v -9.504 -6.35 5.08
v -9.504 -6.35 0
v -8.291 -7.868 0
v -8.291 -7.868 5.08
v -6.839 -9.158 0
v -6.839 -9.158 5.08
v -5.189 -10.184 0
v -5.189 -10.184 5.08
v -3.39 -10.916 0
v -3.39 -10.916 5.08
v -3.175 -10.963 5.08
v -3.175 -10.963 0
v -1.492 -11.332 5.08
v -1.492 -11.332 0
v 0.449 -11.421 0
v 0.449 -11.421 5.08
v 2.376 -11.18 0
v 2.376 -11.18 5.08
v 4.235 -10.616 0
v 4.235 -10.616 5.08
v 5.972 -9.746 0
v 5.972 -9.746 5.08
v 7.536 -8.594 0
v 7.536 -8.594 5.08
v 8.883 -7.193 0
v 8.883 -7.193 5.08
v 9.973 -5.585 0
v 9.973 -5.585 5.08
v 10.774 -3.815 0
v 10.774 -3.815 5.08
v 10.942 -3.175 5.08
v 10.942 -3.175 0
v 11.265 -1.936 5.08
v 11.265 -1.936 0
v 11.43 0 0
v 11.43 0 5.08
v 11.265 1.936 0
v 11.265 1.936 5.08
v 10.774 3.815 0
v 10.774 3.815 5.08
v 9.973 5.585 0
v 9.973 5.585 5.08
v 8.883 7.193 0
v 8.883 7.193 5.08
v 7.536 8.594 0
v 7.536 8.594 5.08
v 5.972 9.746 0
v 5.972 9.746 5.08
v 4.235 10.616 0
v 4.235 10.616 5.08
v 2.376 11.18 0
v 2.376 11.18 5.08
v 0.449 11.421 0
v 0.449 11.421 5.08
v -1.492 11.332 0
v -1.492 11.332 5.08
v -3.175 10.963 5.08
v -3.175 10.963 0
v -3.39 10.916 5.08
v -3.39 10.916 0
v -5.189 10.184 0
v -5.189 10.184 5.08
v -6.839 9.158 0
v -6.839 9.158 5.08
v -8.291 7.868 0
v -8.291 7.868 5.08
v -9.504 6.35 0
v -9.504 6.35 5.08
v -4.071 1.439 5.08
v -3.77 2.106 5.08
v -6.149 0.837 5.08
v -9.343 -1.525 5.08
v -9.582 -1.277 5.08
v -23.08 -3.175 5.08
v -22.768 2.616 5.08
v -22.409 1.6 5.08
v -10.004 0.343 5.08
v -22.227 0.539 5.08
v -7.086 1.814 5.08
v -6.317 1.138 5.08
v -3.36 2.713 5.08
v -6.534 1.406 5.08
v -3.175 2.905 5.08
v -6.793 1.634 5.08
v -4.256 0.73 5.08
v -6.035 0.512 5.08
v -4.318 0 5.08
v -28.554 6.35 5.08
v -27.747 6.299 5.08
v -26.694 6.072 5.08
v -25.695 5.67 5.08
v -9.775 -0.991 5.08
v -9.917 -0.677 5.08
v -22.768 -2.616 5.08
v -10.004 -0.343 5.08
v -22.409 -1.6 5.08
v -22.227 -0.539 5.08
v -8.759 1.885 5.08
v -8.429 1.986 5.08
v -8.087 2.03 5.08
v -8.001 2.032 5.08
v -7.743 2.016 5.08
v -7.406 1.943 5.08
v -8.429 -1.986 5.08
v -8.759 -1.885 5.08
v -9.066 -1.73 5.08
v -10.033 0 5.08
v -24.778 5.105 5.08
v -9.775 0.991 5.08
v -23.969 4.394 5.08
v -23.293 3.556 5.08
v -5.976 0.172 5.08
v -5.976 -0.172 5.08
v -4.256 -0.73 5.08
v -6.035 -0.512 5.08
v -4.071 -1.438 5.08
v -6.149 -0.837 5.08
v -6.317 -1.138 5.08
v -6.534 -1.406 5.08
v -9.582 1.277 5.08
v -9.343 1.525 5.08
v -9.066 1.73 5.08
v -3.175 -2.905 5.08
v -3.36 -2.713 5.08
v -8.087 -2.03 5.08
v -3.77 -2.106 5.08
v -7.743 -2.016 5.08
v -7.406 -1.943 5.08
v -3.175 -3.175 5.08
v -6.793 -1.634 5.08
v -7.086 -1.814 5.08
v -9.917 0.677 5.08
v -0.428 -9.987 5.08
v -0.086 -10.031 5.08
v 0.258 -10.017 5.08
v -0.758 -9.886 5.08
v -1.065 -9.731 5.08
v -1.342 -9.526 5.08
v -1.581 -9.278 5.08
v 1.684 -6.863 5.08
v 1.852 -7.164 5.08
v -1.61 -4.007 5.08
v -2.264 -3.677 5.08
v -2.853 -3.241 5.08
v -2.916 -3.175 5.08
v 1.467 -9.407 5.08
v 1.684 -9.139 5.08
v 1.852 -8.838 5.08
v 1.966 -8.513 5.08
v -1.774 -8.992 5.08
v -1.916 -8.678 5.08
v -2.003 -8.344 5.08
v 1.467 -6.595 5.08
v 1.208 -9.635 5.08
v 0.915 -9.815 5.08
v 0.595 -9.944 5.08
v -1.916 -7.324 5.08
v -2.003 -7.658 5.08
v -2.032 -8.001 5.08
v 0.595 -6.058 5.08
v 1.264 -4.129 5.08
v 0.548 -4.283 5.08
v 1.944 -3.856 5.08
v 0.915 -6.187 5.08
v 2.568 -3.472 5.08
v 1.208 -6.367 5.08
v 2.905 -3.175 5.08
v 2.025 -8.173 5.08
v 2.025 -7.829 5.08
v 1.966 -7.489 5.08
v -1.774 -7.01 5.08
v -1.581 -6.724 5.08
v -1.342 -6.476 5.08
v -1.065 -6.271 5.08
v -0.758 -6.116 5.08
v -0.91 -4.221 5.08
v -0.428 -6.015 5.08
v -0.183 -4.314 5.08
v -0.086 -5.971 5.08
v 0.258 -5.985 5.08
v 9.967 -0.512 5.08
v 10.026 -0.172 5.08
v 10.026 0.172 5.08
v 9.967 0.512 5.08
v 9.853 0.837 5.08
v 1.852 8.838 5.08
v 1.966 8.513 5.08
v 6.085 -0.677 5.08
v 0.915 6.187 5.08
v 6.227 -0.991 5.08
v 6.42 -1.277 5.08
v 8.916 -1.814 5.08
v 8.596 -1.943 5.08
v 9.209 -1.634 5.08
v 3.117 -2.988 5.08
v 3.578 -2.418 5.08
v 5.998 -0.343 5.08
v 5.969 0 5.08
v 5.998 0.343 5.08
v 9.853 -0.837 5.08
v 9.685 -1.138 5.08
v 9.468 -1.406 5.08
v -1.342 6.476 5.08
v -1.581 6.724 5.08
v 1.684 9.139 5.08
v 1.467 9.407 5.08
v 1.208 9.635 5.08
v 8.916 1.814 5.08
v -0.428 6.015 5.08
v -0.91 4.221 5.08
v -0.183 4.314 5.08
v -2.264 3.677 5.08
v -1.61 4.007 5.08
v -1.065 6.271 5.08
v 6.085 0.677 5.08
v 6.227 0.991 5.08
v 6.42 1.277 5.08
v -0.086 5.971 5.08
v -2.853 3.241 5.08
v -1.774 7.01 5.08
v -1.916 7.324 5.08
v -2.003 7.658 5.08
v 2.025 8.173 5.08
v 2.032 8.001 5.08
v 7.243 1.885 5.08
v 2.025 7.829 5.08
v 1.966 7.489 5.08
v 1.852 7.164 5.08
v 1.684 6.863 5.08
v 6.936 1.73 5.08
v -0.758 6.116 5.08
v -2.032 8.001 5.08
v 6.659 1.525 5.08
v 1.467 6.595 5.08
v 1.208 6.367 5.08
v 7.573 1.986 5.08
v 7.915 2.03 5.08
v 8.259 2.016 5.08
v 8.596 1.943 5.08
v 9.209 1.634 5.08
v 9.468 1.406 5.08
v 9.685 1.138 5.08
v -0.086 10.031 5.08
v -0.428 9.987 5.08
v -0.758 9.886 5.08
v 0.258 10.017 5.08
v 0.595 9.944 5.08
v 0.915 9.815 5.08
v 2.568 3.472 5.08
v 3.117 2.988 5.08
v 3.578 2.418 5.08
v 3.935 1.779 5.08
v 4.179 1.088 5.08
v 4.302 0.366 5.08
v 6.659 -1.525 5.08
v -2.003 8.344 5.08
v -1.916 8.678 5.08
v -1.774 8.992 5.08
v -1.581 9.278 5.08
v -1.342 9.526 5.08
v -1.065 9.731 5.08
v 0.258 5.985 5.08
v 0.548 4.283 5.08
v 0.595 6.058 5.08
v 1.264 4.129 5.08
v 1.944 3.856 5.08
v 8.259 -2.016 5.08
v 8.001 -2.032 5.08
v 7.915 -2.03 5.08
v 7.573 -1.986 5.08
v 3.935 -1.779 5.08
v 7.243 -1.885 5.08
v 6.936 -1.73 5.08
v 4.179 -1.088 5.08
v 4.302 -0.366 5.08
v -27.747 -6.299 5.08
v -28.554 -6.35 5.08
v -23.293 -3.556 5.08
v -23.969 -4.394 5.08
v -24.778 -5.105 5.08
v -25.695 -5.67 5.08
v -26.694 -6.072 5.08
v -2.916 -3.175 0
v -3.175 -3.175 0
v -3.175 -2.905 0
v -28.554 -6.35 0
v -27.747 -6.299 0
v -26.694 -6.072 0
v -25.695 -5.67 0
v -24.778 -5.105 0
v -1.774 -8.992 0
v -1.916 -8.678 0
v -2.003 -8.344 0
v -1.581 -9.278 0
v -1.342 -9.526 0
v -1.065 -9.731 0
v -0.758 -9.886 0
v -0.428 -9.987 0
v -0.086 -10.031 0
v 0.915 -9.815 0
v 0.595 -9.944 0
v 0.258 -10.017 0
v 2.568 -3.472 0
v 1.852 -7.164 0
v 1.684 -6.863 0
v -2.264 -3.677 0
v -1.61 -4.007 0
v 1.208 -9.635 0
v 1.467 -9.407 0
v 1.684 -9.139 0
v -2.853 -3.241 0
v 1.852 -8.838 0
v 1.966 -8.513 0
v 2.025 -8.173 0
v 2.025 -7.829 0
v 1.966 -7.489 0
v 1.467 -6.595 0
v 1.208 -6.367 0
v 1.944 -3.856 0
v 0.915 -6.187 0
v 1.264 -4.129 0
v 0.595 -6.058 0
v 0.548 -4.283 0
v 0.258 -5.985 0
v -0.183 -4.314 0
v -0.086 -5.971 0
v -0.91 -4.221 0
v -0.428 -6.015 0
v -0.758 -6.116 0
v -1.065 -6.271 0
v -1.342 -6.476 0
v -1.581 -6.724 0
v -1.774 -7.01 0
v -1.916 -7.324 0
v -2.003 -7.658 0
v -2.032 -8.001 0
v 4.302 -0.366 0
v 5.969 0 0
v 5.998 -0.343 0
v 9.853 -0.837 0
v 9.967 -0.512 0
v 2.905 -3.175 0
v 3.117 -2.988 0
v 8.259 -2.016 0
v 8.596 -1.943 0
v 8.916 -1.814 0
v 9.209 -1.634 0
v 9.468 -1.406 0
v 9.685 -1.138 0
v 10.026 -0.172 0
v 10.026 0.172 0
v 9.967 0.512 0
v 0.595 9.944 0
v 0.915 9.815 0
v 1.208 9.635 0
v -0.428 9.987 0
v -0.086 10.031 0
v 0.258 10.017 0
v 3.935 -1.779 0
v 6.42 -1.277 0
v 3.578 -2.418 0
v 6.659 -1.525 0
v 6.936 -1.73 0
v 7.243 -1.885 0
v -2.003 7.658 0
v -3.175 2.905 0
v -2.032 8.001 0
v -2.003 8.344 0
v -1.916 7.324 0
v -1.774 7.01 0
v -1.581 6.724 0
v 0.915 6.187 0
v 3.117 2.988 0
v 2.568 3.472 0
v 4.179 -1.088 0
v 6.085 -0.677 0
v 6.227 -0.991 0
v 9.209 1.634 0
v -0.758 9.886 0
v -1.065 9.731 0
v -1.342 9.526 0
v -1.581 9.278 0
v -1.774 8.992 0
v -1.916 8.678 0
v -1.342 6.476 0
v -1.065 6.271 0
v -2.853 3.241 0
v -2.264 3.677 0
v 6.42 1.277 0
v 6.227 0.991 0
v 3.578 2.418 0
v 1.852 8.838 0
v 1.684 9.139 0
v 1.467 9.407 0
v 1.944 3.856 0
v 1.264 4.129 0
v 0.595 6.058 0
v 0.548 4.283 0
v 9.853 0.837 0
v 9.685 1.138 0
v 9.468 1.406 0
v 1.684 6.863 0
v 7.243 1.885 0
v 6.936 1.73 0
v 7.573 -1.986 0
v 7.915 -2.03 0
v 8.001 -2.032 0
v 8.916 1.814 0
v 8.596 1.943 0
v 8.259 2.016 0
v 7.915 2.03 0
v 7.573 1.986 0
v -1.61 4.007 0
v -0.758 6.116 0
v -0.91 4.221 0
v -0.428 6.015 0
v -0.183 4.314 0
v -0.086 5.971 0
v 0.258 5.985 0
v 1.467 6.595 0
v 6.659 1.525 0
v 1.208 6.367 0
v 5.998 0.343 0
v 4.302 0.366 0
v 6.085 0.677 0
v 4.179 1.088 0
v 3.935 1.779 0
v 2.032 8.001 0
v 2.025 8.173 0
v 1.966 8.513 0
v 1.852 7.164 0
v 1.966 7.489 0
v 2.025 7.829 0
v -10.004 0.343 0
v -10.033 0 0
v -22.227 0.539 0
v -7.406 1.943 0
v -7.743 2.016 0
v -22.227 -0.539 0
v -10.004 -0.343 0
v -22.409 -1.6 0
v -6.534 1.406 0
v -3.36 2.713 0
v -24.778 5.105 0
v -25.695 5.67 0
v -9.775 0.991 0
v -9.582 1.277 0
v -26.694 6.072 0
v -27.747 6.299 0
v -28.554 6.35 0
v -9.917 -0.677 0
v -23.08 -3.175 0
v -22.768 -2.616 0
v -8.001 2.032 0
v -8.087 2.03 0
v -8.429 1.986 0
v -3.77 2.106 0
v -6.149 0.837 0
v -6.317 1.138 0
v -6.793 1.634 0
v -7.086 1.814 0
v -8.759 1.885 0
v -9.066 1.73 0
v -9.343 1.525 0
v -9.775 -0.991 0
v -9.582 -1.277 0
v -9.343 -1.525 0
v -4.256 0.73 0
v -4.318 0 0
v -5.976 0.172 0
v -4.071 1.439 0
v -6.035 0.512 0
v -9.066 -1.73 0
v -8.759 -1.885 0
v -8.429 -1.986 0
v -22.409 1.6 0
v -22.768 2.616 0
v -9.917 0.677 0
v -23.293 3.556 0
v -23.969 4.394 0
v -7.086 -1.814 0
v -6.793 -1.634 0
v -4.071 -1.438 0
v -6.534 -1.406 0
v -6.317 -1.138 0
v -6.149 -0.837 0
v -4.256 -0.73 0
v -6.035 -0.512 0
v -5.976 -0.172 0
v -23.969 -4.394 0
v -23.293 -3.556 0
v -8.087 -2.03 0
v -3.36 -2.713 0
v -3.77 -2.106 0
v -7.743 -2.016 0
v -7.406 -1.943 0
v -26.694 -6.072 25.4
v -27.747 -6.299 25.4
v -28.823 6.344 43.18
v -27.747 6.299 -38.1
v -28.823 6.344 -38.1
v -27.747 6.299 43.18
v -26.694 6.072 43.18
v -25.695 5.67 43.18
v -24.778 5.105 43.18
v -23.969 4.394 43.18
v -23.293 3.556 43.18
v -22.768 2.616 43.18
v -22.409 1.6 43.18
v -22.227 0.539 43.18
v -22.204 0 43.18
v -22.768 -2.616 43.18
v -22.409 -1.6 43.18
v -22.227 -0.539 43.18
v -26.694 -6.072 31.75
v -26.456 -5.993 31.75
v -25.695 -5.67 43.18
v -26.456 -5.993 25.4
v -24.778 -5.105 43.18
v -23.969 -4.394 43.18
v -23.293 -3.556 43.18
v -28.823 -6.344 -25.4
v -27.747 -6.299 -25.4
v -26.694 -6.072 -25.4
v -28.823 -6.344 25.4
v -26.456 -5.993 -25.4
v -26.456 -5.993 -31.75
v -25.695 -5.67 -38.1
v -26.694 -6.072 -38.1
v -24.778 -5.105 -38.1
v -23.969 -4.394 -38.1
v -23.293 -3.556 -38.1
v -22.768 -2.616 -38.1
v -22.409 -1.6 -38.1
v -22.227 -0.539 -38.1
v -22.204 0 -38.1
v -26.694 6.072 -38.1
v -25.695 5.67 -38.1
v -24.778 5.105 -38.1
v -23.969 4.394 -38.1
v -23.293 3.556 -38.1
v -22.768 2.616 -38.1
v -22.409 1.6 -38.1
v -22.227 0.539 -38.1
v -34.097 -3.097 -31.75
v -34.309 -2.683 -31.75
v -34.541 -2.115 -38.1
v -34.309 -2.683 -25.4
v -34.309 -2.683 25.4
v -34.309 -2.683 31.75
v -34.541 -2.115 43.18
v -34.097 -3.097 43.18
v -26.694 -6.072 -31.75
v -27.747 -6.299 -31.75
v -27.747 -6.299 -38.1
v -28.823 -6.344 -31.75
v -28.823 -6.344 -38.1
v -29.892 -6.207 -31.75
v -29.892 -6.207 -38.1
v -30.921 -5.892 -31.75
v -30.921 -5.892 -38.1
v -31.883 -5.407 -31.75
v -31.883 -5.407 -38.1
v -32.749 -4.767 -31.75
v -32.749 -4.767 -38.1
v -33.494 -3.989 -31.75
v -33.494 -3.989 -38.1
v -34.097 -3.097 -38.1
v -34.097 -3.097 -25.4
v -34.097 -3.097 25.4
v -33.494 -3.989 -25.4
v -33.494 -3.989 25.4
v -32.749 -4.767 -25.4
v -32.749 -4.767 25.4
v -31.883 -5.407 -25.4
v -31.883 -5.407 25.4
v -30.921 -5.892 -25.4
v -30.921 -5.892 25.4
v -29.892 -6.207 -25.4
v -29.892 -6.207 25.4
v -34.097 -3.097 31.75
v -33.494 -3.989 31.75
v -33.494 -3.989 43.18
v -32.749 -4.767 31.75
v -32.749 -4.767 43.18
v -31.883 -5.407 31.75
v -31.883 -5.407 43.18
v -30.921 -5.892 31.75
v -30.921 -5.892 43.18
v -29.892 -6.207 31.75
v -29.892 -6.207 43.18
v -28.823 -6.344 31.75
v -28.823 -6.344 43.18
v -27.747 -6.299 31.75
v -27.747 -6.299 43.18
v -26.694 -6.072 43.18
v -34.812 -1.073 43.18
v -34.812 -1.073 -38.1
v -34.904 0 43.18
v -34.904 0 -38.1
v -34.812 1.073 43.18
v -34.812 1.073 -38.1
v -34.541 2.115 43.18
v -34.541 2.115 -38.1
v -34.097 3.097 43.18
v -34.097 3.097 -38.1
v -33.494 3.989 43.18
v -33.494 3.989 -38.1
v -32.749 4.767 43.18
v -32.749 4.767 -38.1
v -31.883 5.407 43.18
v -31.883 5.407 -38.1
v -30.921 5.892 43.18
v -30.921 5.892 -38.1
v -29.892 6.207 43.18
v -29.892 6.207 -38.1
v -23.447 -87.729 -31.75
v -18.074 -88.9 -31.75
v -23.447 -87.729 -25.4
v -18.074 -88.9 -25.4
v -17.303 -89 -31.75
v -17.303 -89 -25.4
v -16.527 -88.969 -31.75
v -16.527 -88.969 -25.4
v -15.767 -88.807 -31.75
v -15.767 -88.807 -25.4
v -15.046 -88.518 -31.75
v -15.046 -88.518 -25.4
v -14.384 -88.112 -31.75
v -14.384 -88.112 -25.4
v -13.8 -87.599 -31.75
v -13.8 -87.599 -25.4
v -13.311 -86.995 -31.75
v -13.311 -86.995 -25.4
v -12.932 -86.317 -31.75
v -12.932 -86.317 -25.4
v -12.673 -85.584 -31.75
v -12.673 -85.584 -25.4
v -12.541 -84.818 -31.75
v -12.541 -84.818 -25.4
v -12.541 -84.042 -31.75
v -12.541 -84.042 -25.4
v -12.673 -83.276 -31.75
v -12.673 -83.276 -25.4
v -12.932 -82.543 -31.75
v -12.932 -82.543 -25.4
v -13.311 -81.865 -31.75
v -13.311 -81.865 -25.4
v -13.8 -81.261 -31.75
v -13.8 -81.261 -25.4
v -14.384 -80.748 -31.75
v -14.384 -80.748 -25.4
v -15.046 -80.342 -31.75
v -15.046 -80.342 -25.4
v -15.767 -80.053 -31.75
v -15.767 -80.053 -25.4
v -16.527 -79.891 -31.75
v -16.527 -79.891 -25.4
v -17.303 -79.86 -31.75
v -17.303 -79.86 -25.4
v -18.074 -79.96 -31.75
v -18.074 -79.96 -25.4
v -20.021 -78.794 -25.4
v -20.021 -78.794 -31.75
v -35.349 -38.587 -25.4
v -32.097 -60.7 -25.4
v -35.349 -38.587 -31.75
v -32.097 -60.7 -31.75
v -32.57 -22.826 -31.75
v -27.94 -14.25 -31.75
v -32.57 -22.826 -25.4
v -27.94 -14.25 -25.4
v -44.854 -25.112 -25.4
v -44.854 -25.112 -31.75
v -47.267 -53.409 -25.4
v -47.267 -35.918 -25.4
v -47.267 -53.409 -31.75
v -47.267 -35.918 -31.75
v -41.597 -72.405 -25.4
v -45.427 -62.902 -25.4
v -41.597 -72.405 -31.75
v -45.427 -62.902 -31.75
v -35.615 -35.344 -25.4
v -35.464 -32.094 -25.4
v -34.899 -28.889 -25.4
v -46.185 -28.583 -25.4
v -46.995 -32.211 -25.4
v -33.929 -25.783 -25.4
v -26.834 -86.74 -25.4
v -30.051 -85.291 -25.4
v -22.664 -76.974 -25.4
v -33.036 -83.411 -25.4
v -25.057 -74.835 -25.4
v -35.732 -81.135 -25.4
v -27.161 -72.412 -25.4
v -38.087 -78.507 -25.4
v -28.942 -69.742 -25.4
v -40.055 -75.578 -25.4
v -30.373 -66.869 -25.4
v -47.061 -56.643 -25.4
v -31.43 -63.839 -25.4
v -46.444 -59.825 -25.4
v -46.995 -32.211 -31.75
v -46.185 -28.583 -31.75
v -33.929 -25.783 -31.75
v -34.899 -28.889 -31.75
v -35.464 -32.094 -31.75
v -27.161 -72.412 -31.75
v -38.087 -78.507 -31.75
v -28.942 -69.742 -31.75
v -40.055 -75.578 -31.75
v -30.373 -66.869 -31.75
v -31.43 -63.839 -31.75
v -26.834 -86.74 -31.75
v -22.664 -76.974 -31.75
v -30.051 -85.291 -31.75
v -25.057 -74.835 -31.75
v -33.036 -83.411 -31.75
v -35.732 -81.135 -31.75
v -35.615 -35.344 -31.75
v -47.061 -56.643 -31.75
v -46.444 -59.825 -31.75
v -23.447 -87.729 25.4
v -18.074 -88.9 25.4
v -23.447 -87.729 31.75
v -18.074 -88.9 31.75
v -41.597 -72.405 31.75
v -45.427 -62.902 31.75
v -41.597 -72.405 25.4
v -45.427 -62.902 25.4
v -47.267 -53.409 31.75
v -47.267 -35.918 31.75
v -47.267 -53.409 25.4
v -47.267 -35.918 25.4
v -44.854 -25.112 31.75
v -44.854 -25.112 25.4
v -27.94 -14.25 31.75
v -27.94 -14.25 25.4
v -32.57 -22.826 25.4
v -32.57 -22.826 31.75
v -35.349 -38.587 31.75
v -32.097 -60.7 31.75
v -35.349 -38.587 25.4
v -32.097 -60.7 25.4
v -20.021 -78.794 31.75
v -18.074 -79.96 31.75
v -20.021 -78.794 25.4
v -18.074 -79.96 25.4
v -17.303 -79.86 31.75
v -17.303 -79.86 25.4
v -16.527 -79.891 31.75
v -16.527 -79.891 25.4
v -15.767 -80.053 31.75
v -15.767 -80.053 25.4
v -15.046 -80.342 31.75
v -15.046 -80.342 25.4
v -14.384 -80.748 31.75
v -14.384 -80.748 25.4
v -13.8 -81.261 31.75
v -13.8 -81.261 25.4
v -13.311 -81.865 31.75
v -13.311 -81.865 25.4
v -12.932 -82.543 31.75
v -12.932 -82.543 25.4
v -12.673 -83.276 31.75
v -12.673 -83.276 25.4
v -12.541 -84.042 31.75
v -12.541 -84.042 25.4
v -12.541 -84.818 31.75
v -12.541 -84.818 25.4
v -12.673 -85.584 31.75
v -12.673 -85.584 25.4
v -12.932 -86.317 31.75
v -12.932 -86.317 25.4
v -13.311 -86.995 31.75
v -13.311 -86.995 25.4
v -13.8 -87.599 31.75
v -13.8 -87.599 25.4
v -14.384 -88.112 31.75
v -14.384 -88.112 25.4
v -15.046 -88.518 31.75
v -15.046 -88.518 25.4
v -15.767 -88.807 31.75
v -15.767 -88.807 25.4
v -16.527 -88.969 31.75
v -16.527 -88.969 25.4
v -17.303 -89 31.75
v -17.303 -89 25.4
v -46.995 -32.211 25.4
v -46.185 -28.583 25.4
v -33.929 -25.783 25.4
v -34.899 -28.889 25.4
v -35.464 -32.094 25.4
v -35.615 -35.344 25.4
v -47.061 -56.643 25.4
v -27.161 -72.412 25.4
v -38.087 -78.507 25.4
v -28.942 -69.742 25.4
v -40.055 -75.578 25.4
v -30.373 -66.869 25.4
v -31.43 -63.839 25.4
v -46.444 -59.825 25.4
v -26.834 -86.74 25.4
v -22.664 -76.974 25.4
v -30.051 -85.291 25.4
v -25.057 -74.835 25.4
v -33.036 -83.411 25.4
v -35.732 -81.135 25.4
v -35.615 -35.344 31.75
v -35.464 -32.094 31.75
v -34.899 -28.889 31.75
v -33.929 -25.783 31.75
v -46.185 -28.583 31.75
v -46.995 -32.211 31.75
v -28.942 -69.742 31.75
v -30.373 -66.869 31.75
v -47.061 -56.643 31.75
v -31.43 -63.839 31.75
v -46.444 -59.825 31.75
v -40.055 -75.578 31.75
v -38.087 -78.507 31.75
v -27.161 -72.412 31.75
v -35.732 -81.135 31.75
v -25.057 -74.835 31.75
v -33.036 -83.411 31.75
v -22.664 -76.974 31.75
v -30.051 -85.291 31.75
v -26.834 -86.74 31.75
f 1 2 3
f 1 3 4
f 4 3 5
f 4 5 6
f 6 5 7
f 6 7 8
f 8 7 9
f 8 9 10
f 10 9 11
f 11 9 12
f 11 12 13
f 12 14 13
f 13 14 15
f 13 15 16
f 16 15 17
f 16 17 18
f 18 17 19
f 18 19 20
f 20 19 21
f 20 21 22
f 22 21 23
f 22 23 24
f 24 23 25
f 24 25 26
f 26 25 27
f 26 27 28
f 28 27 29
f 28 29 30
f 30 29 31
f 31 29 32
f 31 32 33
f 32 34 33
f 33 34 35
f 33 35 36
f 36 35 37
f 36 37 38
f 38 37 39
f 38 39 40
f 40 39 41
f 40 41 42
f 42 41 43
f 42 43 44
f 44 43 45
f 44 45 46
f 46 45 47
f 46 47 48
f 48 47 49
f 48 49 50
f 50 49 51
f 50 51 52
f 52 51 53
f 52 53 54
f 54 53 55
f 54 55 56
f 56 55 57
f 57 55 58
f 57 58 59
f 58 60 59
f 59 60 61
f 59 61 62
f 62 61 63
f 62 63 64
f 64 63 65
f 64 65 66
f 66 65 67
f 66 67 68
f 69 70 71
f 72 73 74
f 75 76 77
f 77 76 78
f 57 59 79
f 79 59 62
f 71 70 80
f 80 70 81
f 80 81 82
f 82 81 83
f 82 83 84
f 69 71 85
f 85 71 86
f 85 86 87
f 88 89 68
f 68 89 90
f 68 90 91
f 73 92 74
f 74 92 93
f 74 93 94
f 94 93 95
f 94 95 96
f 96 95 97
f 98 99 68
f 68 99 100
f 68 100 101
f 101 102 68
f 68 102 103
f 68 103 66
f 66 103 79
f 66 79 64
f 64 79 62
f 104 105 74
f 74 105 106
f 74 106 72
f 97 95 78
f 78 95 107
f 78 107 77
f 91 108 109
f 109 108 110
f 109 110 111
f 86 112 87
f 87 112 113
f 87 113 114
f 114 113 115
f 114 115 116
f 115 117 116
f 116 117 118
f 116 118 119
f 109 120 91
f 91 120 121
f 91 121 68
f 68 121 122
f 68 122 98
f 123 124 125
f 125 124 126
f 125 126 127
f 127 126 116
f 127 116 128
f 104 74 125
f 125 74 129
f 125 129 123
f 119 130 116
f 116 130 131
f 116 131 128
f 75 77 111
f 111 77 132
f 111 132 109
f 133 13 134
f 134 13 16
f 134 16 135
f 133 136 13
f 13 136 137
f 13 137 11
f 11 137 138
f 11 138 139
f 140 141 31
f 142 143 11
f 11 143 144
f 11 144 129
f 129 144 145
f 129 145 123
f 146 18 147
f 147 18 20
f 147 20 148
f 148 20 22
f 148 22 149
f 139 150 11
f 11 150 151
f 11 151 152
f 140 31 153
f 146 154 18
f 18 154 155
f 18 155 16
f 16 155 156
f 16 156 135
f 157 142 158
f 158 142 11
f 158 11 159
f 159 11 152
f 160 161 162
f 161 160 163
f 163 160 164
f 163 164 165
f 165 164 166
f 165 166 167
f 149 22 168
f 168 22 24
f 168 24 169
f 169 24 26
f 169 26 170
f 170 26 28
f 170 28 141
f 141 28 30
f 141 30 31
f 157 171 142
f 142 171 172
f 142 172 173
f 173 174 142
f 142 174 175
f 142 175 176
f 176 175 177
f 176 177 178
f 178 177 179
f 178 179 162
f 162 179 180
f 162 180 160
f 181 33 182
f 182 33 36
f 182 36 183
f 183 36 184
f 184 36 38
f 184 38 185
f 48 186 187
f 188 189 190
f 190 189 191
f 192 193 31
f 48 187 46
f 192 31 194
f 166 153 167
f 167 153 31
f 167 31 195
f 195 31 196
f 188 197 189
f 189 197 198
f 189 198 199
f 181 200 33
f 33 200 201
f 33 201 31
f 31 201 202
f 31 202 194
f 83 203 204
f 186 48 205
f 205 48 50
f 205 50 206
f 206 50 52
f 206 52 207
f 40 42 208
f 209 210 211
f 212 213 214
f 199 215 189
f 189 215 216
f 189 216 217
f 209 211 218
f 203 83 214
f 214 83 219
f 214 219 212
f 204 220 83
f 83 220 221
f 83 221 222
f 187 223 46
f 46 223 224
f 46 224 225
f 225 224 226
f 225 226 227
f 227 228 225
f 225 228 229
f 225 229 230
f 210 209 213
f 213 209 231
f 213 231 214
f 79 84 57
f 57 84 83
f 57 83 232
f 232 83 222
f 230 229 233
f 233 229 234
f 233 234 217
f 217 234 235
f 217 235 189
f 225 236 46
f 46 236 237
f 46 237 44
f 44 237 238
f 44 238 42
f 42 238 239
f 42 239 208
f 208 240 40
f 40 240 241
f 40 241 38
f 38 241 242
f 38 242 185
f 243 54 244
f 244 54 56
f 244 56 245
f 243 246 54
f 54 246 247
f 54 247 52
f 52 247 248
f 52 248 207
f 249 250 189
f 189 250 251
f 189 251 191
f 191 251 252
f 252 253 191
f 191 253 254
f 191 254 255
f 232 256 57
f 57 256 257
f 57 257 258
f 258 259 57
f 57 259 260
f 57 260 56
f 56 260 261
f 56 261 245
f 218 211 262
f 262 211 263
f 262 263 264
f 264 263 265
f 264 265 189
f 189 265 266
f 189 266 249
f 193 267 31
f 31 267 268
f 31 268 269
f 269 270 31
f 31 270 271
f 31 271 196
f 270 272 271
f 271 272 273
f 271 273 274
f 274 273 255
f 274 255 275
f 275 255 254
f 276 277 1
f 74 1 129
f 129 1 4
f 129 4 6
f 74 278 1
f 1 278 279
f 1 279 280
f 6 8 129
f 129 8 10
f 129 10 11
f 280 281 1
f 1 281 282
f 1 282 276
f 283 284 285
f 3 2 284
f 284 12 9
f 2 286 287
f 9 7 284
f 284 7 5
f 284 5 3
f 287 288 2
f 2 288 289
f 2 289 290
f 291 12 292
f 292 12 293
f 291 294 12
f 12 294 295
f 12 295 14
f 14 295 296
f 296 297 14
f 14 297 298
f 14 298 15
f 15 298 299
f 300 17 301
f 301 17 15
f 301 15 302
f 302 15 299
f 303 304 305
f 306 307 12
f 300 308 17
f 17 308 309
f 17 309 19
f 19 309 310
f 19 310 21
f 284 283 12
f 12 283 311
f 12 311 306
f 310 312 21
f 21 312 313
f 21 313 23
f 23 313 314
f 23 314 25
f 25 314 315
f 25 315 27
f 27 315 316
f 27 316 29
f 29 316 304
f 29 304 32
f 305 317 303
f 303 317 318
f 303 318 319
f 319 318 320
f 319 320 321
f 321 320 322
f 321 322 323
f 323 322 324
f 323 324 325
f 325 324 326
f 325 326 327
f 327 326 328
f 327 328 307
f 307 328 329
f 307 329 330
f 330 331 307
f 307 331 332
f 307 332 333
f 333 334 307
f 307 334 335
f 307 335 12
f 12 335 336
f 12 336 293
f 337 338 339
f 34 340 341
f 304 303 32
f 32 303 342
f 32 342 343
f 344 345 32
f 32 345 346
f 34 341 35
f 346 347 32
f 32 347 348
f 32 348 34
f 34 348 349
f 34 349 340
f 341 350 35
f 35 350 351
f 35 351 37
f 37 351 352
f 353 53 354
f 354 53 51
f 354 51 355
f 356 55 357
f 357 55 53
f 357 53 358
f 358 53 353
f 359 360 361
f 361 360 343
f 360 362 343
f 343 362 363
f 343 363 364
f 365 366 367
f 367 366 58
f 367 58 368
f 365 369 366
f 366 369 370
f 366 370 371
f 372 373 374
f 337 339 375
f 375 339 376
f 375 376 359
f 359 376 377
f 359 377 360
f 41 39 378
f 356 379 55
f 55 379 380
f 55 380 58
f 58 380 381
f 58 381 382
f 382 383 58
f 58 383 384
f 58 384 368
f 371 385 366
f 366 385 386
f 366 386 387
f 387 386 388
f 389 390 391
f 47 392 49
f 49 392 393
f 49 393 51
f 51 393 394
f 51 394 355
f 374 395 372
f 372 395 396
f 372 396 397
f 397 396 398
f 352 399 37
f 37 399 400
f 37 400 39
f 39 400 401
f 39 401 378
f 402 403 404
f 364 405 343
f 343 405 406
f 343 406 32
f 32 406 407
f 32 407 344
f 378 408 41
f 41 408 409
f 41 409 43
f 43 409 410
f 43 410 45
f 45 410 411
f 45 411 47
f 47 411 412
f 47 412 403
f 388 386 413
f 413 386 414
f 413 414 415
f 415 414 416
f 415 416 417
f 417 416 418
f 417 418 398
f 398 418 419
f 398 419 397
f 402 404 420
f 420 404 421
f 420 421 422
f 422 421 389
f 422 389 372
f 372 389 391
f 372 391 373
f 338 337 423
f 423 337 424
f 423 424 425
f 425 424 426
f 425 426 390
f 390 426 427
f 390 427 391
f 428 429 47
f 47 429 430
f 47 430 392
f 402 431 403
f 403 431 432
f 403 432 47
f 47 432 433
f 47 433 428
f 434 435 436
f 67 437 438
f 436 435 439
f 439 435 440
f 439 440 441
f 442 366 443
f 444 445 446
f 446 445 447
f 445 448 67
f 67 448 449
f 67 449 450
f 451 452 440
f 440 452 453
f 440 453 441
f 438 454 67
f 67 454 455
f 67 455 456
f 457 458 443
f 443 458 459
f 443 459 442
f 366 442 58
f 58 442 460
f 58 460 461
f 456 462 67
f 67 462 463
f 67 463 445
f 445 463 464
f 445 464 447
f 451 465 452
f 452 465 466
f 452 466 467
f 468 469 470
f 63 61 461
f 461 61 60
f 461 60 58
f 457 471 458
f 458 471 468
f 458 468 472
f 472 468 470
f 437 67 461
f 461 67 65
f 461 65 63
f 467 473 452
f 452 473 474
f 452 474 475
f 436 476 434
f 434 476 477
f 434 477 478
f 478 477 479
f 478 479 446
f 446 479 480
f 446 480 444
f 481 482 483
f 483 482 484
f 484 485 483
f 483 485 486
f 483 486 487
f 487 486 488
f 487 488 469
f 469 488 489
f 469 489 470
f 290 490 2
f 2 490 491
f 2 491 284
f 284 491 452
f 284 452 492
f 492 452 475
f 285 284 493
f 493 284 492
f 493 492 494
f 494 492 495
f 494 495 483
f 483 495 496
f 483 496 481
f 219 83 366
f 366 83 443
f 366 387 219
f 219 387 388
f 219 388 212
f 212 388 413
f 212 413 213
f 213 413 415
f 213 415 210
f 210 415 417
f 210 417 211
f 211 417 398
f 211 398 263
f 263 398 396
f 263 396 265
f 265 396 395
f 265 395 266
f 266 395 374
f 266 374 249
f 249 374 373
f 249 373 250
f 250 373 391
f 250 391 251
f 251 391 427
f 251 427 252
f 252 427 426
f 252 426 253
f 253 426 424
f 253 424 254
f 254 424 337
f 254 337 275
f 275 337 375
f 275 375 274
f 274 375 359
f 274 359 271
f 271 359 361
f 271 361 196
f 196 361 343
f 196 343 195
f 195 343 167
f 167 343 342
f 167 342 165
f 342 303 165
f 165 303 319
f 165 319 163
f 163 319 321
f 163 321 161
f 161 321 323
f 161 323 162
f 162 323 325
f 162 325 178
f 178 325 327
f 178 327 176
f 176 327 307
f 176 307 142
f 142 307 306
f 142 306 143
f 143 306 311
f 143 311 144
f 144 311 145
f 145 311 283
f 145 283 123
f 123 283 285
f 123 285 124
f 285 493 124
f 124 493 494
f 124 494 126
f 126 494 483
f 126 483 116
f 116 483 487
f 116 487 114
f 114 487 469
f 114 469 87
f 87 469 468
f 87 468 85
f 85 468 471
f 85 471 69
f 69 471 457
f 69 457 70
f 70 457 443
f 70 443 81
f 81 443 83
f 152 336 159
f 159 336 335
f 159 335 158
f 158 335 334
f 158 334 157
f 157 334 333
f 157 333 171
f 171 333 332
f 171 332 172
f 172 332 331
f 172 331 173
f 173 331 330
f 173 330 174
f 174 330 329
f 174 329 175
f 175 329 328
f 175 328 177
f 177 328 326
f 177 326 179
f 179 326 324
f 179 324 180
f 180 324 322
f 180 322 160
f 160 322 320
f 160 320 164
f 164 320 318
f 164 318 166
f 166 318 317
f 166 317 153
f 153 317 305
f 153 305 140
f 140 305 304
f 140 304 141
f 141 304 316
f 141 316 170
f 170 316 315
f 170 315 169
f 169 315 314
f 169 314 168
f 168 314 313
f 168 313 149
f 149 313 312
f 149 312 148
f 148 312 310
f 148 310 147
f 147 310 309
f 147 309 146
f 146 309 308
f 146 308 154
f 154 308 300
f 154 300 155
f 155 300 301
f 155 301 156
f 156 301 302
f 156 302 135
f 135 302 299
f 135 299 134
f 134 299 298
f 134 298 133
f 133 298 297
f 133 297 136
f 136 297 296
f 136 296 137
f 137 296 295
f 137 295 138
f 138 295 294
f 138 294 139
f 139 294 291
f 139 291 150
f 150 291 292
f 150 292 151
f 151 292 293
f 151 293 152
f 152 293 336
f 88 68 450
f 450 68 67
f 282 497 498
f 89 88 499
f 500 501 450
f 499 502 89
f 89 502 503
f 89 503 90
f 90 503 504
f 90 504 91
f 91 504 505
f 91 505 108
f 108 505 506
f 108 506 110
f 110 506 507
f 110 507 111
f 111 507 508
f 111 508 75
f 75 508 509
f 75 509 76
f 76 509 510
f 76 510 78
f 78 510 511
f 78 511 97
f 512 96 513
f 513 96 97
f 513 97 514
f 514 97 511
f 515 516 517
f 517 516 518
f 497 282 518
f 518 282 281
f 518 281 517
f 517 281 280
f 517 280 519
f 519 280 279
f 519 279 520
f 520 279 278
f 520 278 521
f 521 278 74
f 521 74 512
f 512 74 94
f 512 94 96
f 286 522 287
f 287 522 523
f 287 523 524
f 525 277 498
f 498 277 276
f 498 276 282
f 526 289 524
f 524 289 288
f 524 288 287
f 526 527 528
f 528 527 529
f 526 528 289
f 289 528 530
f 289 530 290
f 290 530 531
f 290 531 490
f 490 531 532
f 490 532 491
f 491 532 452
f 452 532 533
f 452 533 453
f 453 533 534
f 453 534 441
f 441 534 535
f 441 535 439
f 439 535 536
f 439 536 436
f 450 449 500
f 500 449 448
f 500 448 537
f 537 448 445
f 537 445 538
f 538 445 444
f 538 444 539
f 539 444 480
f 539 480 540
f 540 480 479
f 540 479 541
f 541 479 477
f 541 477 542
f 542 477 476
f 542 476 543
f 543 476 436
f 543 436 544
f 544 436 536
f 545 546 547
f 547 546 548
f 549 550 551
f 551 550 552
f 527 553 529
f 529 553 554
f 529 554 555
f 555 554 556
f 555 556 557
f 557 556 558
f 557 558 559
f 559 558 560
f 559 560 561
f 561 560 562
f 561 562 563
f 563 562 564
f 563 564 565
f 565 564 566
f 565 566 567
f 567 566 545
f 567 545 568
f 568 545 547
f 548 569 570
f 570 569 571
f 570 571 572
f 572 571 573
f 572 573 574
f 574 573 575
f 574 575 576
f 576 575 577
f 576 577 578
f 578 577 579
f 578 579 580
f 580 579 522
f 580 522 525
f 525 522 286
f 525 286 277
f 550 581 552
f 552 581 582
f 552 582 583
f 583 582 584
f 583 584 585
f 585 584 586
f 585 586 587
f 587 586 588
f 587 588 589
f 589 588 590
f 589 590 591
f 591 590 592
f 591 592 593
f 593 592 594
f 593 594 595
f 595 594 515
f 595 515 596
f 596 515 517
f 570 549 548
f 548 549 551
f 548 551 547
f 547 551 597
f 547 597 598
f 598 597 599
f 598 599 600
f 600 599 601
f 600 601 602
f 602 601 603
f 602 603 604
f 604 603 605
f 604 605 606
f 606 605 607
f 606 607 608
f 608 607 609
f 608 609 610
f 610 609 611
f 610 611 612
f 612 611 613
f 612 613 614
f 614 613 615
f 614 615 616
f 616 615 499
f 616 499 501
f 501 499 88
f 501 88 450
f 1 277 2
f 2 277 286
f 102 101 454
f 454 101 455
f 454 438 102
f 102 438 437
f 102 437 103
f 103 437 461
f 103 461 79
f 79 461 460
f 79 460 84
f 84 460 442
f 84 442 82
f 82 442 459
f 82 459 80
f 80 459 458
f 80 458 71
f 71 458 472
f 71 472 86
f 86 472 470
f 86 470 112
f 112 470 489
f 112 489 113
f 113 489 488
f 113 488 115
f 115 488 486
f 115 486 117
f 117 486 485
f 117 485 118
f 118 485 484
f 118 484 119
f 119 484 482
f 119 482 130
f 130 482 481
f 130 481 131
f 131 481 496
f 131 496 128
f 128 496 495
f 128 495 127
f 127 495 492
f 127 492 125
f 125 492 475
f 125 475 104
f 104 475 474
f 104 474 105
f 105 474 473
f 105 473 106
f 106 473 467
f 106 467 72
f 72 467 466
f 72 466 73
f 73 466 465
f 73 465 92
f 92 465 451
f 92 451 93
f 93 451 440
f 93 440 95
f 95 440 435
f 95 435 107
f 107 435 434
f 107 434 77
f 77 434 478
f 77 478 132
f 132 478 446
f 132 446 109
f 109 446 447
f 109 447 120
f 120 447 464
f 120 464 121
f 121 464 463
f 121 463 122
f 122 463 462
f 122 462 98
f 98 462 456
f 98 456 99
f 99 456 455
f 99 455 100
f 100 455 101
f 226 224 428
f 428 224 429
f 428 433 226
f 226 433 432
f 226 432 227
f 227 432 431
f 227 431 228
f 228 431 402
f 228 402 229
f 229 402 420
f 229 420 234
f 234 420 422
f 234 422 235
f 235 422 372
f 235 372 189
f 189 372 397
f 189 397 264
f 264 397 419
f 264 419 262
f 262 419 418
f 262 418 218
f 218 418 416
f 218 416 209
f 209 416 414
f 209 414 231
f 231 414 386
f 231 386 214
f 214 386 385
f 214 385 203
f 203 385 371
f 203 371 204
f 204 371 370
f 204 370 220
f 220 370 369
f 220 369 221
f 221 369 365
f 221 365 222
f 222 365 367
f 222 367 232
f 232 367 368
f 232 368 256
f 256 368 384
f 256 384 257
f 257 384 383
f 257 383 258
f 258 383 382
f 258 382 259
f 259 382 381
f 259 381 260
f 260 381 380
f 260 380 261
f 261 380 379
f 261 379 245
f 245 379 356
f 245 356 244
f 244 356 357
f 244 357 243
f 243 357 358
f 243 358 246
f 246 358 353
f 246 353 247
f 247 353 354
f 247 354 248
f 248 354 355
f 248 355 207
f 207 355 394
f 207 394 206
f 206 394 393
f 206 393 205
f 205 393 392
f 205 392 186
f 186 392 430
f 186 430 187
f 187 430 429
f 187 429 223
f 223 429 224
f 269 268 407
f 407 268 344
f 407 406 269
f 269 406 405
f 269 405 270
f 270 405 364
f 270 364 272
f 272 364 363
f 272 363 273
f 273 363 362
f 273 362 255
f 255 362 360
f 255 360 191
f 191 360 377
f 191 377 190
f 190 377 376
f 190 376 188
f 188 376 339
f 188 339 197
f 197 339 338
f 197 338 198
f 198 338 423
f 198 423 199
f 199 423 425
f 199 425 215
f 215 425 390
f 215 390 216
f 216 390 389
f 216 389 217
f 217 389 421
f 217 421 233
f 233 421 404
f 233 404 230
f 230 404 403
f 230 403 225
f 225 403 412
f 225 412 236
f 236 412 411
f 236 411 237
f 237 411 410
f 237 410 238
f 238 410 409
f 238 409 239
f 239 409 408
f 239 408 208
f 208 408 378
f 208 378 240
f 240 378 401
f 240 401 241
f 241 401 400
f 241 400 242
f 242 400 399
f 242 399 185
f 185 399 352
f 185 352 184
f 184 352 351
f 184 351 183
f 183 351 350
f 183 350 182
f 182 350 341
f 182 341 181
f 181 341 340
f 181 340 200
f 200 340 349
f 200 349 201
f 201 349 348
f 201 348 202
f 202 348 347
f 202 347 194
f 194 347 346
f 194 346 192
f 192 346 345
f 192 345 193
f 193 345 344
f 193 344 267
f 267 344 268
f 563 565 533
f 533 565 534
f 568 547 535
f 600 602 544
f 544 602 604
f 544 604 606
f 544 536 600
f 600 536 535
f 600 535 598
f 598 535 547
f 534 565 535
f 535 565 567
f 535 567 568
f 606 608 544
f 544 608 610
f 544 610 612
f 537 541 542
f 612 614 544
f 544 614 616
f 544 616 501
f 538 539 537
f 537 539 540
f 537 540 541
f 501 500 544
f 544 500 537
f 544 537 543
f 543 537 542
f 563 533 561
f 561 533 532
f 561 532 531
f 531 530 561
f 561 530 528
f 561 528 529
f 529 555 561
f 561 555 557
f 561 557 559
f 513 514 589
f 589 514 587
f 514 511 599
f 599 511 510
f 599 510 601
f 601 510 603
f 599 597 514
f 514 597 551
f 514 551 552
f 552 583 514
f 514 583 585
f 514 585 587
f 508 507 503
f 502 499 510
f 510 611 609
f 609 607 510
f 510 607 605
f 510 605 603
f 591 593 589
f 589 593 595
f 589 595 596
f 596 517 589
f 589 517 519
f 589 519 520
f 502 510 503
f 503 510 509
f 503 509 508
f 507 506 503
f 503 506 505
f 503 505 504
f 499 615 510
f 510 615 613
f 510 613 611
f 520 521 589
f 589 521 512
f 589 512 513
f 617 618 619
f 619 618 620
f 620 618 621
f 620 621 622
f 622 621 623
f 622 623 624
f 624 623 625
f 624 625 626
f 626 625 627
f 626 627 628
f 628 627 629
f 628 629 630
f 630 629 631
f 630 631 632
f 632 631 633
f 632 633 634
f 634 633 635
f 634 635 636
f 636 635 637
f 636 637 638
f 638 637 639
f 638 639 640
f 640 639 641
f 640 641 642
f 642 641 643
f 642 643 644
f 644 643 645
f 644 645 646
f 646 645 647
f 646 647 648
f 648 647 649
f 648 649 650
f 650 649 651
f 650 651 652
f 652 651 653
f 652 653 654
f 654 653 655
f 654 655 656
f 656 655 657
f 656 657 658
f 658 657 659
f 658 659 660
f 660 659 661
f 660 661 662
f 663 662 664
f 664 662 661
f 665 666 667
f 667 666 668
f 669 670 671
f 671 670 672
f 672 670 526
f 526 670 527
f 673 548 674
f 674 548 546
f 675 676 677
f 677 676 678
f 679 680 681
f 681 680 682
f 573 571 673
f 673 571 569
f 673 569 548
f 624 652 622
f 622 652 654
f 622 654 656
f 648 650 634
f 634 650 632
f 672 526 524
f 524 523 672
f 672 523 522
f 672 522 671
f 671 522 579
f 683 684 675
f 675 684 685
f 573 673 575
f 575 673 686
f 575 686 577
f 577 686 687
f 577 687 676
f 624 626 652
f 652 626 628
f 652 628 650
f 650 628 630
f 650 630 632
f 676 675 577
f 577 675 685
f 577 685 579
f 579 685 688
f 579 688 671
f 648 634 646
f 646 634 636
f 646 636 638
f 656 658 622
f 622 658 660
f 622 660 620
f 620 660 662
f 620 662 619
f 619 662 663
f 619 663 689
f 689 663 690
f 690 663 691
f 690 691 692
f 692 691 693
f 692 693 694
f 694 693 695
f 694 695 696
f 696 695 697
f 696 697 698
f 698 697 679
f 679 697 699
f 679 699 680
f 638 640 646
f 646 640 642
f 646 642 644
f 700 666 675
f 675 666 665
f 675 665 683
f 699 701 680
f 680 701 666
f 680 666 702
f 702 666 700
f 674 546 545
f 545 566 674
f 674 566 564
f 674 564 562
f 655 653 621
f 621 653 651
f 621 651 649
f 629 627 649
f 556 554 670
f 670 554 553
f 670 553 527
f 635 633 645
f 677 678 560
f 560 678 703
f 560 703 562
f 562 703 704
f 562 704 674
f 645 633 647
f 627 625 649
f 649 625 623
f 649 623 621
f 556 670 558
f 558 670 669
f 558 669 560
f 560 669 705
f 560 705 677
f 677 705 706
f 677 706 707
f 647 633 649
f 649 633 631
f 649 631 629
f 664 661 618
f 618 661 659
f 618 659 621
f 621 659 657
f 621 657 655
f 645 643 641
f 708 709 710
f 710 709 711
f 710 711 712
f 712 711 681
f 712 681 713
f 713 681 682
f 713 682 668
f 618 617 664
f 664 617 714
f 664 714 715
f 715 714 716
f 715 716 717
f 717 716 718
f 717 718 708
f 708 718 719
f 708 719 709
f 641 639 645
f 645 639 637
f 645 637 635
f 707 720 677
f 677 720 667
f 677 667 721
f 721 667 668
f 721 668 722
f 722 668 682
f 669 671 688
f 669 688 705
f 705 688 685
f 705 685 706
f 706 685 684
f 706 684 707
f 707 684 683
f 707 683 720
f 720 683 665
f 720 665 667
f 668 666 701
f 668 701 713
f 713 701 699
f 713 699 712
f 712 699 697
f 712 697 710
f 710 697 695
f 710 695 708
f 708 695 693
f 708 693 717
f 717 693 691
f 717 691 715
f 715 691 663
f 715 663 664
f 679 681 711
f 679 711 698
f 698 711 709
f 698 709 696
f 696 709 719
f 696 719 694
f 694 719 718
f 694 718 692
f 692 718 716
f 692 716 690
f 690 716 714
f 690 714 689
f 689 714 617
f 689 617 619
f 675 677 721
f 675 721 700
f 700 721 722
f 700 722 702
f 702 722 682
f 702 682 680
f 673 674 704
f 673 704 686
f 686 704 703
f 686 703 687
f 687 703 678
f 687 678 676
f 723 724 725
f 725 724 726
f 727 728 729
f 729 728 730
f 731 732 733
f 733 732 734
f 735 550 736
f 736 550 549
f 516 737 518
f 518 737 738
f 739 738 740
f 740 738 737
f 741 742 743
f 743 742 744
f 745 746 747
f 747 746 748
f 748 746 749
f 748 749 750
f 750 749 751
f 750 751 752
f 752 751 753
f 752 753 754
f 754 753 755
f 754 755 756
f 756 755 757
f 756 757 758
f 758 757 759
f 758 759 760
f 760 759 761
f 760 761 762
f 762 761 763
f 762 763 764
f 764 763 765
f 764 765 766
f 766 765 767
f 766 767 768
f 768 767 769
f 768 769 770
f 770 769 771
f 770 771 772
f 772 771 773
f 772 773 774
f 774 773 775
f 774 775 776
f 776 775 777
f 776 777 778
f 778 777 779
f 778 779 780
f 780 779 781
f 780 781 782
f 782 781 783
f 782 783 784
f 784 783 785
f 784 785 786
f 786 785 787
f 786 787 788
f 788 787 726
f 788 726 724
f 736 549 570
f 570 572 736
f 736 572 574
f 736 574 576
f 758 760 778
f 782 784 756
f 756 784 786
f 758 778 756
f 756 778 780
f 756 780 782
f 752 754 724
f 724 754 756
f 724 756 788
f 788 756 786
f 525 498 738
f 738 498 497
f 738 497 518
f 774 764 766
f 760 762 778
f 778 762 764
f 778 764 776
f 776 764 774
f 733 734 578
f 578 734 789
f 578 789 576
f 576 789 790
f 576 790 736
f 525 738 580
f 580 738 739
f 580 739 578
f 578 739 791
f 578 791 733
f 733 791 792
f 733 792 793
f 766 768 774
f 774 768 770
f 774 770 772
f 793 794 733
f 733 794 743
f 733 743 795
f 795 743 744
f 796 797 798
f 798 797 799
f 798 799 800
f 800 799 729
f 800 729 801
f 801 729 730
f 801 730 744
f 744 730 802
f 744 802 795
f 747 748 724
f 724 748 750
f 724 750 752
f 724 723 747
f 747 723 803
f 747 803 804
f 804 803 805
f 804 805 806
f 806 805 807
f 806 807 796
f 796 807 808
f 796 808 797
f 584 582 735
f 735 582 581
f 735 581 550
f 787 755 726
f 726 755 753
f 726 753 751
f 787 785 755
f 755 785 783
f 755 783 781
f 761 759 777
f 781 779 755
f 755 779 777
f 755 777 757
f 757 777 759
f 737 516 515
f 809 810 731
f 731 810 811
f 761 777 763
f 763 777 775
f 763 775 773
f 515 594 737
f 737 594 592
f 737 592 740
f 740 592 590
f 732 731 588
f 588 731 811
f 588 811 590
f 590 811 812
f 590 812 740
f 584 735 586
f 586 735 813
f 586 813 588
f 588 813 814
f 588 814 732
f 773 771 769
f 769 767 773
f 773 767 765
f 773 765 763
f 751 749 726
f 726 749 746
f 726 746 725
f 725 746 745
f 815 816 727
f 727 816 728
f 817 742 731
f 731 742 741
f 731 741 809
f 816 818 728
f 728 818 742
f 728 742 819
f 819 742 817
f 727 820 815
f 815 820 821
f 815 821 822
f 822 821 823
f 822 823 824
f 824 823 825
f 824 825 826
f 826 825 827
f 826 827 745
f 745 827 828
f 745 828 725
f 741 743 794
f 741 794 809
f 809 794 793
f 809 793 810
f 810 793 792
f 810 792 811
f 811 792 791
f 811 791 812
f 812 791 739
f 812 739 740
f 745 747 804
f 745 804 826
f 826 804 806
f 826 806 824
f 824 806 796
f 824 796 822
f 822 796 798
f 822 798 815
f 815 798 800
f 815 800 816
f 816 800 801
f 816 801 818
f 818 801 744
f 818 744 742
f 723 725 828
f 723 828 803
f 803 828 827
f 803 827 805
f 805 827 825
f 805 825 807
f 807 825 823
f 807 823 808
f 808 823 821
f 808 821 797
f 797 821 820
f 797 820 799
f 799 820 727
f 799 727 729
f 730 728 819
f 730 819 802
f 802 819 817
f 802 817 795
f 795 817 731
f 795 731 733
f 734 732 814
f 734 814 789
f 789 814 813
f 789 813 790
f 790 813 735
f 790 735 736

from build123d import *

# Parameters (mm, degrees)
SKETCH2_R                = 11.43
BOSS_EXTRUDE1_DEPTH      = 5.08
SKETCH4_R                = 4.318
SKETCH4_R_2              = 2.032
CUT_EXTRUDE1_DEPTH       = 5.08
BOSS_EXTRUDE2_DEPTH      = 5.08
CIRPATTERN1_COUNT        = 4
BOSS_EXTRUDE3_DEPTH      = 38.1
BOSS_EXTRUDE3_DEPTH_BACK = 43.18
SKETCH9_R                = 6.35
BOSS_EXTRUDE4_DEPTH      = 6.35
FILLET1_R                = 25.4
FILLET1_OF_MIRROR1_R     = 25.4


with BuildPart() as part:
    # Sketch2 → Boss-Extrude1 (new body)
    with BuildSketch(Plane.XY):
        Circle(SKETCH2_R)
    extrude(amount=BOSS_EXTRUDE1_DEPTH)

    # Sketch4 → Cut-Extrude1 (cut)
    with BuildSketch(Plane(origin=(0, 0, 0), x_dir=(-1, 0, 0), z_dir=(0, 0, -1))):
        Circle(SKETCH4_R)
        with Locations((0, -8.001)):
            Circle(SKETCH4_R_2)
    cut_extrude1 = extrude(amount=-CUT_EXTRUDE1_DEPTH, mode=Mode.SUBTRACT)

    # Sketch7 → Boss-Extrude2 (add)
    with BuildSketch(Plane(origin=(0, 0, 0), x_dir=(-1, 0, 0), z_dir=(0, 0, -1))):
        with BuildLine():
            Line((9.503809762, 6.35), (28.553809762, 6.35))
            ThreePointArc((28.553809762, 6.35), (34.903809762, 0), (28.553809762, -6.35))
            Line((28.553809762, -6.35), (9.503809762, -6.35))
            Line((9.503809762, -6.35), (9.503809762, 6.35))
        make_face()
    extrude(amount=-BOSS_EXTRUDE2_DEPTH)

    # CirPattern1: Cut-Extrude1 ×4 about axis
    cirpattern1_axis = Axis((0, 0, 0), (0, 0, 1))
    for i in range(1, CIRPATTERN1_COUNT):
        add(cut_extrude1.rotate(cirpattern1_axis, i * 360 / CIRPATTERN1_COUNT), mode=Mode.SUBTRACT)

    # Sketch9 → Boss-Extrude3 (add, two sides: drawn at the far end of the back side and taken through both)
    with BuildSketch(Plane.XY.offset(5.08).offset(-BOSS_EXTRUDE3_DEPTH_BACK)):
        with Locations((-28.553809762, 0)):
            Circle(SKETCH9_R)
    extrude(amount=BOSS_EXTRUDE3_DEPTH + BOSS_EXTRUDE3_DEPTH_BACK)

    # Sketch12 → Boss-Extrude4 (add)
    with BuildSketch(Plane.XY.offset(-31.75)):
        with BuildLine():
            Line((-25.378809762, 0), (-33.047894508, 0))
            Line((-33.047894508, 0), (-47.267412368, -30.245447294))
            Line((-47.267412368, -30.245447294), (-47.267412368, -58.33420365))
            Line((-47.267412368, -58.33420365), (-36.57534741, -84.867934272))
            Line((-36.57534741, -84.867934272), (-18.073665796, -88.9))
            ThreePointArc((-18.073665796, -88.9), (-12.52460446, -84.430000607), (-18.073665796, -79.960001215))
            Line((-18.073665796, -79.960001215), (-30.345802798, -72.608060715))
            Line((-30.345802798, -72.608060715), (-36.57534741, -30.245447294))
            Line((-36.57534741, -30.245447294), (-27.94, -14.249719927))
            Line((-27.94, -14.249719927), (-25.378809762, 0))
        make_face()
    boss_extrude4 = extrude(amount=BOSS_EXTRUDE4_DEPTH)

    # Fillet1
    fillet1_edges = [part.edges().sort_by_distance(p)[0] for p in [
        (-36.57534741, -84.867934272, -28.575),
        (-30.345802798, -72.608060715, -28.575),
        (-36.57534741, -30.245447294, -28.575),
        (-47.267412368, -30.245447294, -28.575),
        (-47.267412368, -58.33420365, -28.575),
    ]]
    fillet(fillet1_edges, radius=FILLET1_R)

    # Mirror1: Boss-Extrude4 across plane
    add(boss_extrude4.mirror(Plane.XY))

    # Fillet1 of Mirror1
    fillet1_of_mirror1_edges = [part.edges().sort_by_distance(p)[0] for p in [
        (-36.57534741, -84.867934272, 28.575),
        (-30.345802798, -72.608060715, 28.575),
        (-36.57534741, -30.245447294, 28.575),
        (-47.267412368, -30.245447294, 28.575),
        (-47.267412368, -58.33420365, 28.575),
    ]]
    fillet(fillet1_of_mirror1_edges, radius=FILLET1_OF_MIRROR1_R)


solid = part.part
